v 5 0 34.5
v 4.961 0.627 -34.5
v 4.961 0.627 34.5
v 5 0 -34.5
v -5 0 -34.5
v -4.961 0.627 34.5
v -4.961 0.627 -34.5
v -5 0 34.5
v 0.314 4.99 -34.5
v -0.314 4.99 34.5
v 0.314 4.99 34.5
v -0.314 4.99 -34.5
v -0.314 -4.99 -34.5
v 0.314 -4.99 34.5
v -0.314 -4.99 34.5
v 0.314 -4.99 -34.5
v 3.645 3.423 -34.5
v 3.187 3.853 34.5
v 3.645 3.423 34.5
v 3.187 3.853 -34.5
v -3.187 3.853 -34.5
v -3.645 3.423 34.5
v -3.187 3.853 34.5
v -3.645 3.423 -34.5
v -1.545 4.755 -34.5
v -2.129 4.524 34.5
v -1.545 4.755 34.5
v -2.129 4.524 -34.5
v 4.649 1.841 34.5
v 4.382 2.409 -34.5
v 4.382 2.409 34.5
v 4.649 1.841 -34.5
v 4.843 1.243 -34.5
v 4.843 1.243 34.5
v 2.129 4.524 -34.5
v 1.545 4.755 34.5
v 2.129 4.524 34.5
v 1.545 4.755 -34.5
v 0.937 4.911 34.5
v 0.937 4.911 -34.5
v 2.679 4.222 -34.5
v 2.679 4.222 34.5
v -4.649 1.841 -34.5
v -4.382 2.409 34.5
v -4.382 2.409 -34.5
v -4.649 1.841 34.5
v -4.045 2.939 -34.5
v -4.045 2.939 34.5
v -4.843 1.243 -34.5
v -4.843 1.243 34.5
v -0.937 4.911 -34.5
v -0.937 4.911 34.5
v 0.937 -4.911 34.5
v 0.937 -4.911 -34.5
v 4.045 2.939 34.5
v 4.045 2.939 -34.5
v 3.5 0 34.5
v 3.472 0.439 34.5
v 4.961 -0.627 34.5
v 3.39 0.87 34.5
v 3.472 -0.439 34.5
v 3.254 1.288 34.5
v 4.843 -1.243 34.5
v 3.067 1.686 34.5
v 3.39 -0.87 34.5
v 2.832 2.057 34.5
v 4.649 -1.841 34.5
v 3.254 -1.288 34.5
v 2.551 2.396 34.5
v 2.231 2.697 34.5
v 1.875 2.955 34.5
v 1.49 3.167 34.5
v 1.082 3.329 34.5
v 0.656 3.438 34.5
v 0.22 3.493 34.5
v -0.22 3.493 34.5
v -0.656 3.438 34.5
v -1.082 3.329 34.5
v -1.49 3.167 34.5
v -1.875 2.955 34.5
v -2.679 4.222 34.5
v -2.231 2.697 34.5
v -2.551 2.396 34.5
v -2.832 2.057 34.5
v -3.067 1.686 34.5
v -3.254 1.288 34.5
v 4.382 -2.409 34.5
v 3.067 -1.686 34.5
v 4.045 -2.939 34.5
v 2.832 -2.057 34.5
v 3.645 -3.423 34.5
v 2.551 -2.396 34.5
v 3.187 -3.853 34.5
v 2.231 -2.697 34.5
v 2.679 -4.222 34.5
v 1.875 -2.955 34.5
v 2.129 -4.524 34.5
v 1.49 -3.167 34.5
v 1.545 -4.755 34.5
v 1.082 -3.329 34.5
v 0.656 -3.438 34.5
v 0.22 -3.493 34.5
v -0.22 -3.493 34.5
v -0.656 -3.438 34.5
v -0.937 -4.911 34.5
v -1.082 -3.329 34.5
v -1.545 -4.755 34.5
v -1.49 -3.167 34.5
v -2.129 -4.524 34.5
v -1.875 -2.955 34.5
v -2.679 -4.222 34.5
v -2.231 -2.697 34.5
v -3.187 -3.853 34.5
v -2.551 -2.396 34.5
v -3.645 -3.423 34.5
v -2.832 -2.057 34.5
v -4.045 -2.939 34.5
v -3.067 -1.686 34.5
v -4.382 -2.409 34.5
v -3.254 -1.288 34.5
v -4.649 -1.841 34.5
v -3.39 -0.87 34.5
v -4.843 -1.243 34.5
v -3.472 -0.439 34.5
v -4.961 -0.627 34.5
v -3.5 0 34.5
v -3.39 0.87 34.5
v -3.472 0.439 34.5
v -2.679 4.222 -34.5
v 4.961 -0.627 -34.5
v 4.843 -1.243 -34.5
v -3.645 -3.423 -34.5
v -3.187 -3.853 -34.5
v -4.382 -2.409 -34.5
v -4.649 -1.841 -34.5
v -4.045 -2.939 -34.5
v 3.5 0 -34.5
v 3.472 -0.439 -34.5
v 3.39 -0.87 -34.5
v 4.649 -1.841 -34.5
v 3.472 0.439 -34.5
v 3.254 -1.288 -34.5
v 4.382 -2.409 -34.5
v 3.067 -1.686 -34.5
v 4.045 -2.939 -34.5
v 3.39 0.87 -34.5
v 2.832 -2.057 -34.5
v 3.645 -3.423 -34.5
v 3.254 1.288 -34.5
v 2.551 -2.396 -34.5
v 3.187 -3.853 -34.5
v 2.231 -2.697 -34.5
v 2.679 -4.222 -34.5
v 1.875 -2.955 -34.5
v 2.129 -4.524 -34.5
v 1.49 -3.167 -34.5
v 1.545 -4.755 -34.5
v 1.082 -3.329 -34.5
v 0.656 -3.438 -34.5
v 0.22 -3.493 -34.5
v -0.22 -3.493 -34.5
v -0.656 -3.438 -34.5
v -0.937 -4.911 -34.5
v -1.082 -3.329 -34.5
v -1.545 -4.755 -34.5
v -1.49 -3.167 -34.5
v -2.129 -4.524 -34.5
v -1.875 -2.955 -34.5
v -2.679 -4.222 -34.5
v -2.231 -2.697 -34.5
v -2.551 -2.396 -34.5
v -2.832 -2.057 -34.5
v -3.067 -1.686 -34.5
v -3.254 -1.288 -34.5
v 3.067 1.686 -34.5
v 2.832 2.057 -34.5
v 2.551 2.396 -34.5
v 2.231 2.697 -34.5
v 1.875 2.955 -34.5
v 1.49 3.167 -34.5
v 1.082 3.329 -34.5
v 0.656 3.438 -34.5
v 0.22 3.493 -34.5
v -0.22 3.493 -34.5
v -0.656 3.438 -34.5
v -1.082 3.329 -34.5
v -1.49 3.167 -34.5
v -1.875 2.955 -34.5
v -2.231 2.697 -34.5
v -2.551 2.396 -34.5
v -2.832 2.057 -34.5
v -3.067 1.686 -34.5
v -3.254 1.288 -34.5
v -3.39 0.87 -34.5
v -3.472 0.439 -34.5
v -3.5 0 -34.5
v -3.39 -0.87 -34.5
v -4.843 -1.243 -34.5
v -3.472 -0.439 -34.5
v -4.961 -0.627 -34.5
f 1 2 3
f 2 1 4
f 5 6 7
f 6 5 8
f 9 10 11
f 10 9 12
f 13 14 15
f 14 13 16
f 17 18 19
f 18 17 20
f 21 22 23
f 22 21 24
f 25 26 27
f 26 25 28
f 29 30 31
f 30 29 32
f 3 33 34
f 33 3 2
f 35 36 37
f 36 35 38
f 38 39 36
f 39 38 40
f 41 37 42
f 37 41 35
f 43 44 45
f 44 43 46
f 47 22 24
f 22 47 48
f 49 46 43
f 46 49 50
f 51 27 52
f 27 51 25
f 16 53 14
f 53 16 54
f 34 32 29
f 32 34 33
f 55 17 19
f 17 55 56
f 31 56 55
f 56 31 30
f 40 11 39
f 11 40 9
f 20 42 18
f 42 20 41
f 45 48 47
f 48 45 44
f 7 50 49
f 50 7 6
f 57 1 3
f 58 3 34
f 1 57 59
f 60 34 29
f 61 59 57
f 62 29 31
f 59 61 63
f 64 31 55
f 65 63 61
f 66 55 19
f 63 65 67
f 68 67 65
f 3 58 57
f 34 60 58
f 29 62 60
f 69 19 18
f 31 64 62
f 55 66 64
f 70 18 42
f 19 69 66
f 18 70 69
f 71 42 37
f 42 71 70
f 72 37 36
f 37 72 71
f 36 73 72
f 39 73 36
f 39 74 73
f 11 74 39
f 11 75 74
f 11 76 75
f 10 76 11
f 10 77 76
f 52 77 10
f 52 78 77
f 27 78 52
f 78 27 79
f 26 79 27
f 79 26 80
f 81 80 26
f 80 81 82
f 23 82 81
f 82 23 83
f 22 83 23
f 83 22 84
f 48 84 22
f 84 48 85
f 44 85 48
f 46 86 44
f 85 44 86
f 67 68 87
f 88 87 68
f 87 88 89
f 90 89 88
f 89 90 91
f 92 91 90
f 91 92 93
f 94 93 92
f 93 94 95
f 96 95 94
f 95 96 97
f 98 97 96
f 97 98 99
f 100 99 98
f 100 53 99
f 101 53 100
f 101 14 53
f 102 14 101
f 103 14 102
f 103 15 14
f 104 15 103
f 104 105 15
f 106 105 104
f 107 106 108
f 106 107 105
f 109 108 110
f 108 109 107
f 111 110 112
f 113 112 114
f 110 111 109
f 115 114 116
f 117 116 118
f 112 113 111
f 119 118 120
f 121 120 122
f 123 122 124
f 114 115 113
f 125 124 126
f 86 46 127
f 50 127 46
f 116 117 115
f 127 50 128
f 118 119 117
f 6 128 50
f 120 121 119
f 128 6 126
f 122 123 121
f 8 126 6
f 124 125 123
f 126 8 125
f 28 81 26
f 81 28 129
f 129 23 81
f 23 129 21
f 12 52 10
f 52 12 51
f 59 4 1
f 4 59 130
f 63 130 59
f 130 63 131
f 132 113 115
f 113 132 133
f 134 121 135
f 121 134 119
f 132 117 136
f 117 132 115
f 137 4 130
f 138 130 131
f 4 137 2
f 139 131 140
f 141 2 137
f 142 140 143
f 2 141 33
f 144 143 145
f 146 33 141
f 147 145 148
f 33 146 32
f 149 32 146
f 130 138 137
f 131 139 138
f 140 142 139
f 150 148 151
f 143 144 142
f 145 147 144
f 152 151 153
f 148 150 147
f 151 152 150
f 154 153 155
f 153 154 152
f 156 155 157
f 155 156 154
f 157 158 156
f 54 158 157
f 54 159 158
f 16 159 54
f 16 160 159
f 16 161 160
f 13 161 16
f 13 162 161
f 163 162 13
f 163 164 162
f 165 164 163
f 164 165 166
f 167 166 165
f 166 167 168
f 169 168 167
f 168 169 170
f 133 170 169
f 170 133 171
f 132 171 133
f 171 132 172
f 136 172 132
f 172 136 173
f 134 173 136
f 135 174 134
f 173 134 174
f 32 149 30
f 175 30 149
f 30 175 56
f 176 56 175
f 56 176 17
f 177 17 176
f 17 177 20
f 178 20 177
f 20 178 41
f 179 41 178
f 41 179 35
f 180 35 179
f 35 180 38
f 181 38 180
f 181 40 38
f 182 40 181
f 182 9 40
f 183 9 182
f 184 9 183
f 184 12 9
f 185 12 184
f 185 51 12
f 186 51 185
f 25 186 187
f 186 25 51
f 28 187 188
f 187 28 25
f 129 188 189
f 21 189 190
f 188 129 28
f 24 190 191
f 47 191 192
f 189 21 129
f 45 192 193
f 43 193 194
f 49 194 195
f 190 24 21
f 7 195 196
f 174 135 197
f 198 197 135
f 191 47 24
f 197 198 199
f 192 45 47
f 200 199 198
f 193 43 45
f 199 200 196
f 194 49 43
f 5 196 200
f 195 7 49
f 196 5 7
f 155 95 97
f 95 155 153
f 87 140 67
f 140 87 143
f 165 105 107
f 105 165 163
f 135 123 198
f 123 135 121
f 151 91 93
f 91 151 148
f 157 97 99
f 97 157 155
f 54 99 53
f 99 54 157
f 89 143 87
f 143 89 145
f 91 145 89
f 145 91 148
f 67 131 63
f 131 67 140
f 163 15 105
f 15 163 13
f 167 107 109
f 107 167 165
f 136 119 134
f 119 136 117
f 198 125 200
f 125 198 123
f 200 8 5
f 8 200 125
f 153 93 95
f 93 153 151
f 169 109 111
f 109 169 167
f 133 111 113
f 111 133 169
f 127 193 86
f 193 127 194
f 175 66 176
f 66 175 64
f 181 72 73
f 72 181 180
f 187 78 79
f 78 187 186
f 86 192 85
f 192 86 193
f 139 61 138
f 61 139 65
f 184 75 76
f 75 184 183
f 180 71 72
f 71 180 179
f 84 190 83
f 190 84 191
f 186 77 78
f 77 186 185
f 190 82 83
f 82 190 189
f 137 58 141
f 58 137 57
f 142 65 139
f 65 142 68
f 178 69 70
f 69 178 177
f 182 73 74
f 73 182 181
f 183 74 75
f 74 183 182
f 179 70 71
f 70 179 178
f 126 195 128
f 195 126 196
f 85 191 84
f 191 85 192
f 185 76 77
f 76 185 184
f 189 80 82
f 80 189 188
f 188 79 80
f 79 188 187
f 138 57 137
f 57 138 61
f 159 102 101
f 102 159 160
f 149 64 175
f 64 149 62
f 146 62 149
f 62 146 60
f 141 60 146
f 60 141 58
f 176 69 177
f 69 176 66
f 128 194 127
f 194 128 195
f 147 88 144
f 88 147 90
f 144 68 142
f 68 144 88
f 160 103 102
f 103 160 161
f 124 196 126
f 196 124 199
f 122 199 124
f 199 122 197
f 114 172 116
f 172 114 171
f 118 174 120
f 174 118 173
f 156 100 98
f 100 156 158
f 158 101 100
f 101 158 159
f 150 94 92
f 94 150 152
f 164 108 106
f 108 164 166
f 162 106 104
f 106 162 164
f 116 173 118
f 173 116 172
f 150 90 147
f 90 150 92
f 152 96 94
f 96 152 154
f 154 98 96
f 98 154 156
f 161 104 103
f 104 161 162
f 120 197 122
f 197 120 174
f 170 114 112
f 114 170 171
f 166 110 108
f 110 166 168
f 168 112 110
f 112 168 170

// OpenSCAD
$fn = 50;


difference() {
	union() {
		translate(v = [0, 0, -34.5000000000]) {
			cylinder(h = 69, r = 5.0000000000);
		}
	}
	union() {
		translate(v = [0, 0, -100.0000000000]) {
			cylinder(h = 200, r = 3.5000000000);
		}
	}
}
